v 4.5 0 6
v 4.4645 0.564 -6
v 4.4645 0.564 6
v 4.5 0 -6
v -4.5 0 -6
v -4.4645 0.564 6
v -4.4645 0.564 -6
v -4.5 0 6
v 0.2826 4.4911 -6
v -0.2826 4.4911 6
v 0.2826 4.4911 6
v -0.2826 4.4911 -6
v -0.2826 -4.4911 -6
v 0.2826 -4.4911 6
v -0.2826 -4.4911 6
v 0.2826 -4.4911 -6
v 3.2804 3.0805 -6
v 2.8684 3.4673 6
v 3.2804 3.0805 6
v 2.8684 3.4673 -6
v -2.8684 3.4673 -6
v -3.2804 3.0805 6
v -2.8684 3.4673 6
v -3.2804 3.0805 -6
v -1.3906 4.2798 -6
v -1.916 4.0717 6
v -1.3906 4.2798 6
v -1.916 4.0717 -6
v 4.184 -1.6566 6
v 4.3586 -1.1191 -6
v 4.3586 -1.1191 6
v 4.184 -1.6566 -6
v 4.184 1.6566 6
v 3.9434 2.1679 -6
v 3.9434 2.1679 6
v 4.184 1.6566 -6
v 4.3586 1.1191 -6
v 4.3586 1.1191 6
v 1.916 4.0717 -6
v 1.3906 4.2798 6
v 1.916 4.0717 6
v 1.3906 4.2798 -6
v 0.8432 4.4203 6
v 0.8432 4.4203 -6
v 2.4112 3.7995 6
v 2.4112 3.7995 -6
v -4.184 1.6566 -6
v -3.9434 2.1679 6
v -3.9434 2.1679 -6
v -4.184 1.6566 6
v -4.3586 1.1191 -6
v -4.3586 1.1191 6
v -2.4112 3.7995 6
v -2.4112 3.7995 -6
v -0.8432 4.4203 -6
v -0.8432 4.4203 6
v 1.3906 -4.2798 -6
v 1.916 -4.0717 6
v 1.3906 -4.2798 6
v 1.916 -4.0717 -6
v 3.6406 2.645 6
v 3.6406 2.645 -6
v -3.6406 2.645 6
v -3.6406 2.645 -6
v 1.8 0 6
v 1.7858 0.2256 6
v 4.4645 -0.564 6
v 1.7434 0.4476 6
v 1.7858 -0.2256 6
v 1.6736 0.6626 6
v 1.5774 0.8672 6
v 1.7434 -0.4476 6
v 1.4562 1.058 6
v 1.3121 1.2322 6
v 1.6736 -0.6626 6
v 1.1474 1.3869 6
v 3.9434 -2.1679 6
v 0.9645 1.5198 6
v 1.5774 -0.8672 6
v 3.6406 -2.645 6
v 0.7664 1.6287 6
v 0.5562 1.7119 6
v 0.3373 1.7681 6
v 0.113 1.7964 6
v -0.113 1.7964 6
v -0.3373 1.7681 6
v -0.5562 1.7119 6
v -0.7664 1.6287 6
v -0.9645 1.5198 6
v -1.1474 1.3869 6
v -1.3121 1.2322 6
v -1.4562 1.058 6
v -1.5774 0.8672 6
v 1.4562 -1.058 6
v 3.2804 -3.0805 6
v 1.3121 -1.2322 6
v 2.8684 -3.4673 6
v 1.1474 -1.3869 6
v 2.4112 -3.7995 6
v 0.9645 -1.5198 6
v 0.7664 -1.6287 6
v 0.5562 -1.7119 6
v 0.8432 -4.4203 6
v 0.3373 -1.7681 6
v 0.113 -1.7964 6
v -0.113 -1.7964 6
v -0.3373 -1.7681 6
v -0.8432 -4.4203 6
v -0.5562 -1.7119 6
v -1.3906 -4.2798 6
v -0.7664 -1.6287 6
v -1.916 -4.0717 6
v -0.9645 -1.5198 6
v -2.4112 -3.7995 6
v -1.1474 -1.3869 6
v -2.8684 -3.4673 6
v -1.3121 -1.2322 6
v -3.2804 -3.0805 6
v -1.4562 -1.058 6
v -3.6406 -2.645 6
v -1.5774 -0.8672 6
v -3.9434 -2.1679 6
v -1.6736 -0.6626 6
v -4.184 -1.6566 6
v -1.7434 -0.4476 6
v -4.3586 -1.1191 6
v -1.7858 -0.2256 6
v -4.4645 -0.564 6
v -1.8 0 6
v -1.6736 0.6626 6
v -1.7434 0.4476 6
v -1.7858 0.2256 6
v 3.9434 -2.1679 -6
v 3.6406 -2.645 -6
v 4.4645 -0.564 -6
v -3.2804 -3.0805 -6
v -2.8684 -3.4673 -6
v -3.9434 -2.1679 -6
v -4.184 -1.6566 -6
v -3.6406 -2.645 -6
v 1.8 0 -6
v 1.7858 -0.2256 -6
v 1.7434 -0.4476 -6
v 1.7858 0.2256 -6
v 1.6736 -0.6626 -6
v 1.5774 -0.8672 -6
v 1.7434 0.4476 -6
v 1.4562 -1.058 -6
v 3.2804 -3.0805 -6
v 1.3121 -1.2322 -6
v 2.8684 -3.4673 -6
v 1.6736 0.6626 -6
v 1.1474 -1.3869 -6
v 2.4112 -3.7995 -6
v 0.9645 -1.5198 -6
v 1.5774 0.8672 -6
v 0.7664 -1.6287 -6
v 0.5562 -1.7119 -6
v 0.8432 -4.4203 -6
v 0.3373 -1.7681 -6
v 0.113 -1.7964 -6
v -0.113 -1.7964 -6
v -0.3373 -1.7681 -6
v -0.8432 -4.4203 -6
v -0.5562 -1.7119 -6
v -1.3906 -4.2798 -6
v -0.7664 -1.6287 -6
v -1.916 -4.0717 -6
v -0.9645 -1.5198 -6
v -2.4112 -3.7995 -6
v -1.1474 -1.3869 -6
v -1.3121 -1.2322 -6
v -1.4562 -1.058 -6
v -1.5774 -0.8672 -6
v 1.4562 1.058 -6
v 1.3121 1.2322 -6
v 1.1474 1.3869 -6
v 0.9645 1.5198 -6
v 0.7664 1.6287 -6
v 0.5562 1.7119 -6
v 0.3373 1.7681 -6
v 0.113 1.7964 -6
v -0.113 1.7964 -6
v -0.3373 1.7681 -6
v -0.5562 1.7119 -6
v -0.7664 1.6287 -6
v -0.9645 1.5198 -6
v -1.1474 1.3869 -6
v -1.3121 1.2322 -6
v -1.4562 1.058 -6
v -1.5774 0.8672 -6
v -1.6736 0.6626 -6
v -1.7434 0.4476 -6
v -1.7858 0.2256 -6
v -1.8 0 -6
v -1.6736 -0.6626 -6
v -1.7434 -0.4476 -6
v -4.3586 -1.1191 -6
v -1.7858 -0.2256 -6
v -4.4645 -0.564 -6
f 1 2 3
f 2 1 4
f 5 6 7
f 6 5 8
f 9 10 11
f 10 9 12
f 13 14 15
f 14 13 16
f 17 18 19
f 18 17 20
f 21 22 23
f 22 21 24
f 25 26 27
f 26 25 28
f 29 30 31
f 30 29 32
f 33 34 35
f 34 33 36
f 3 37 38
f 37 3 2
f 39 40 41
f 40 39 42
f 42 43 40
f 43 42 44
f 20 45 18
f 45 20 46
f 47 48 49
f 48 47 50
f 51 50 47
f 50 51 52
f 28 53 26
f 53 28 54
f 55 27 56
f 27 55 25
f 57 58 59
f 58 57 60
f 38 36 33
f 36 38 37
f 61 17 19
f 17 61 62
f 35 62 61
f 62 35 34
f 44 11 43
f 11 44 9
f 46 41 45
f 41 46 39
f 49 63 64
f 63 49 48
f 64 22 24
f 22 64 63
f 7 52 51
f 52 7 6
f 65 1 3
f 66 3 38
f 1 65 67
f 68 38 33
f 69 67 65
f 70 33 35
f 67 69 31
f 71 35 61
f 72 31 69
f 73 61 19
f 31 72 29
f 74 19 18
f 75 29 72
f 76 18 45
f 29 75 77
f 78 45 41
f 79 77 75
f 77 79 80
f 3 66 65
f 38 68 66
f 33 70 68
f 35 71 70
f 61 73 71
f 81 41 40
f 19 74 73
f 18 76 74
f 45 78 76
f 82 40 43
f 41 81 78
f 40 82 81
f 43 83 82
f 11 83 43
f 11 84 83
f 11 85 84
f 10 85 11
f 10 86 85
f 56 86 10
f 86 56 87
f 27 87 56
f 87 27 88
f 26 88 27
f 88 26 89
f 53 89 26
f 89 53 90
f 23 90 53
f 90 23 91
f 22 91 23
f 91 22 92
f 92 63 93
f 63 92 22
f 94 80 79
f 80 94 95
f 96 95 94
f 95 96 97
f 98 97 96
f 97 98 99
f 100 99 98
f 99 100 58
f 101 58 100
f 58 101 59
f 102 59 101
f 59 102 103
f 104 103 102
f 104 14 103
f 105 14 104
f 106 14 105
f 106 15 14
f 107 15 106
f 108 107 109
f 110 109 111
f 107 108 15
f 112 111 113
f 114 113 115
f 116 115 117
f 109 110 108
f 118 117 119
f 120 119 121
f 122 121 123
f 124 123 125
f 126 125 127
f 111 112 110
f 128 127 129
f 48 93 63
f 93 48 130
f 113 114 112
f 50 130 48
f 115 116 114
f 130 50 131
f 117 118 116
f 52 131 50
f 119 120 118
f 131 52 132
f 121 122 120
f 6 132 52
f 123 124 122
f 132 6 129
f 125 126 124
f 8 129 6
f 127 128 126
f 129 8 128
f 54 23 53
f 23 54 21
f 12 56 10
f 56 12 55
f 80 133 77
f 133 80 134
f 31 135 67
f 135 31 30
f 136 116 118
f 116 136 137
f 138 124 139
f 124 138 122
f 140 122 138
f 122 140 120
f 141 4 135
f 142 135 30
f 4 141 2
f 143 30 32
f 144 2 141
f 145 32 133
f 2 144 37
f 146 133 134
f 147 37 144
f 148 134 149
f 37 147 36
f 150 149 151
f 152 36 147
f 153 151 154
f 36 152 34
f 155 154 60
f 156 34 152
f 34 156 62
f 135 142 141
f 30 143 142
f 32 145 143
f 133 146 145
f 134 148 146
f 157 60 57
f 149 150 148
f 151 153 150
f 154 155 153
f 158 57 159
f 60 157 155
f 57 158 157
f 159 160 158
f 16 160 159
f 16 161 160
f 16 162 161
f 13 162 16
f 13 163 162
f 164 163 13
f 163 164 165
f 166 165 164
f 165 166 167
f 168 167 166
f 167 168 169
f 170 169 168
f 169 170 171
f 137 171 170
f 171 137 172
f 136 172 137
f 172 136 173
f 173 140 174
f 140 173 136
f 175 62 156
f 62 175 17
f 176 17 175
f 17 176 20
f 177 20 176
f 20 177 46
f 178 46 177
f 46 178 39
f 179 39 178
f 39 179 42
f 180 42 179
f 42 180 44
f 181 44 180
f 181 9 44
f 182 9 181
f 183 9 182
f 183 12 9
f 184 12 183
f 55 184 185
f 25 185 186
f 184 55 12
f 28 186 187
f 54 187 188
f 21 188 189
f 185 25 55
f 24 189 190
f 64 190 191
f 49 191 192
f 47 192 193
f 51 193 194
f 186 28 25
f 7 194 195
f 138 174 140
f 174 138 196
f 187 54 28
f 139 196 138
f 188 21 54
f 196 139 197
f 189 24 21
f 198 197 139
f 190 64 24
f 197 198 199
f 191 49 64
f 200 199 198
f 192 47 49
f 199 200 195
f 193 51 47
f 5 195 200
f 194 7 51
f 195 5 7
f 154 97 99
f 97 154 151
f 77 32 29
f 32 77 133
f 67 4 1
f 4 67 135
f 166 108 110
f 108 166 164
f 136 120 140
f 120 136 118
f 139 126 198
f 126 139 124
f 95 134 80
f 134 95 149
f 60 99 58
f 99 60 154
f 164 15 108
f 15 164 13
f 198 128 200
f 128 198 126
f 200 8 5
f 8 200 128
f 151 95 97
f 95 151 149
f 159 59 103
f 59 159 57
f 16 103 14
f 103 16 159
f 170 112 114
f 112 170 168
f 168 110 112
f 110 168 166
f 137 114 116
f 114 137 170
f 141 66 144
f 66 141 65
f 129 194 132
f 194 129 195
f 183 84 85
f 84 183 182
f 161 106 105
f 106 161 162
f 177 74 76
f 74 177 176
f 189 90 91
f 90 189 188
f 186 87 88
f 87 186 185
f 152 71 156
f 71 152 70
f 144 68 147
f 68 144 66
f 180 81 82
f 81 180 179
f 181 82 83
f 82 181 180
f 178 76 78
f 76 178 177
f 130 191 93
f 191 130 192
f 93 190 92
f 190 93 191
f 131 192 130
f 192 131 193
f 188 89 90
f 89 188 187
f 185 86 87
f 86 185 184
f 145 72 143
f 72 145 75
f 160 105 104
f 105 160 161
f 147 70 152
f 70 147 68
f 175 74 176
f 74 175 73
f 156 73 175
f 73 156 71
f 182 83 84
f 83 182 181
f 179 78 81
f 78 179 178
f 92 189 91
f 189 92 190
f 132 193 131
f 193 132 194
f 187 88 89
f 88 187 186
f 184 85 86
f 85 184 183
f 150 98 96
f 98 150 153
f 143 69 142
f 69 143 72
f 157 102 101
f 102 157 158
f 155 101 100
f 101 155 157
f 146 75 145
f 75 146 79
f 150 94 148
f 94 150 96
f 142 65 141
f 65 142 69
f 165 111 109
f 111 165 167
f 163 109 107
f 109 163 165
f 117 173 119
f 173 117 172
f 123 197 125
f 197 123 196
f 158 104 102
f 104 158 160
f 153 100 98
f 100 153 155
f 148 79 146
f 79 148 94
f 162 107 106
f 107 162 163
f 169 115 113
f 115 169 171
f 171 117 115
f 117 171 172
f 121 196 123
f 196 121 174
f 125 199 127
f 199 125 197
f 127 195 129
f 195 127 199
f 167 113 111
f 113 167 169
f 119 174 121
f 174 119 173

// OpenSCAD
$fn = 50;


difference() {
	union() {
		translate(v = [0, 0, -6.0000000000]) {
			cylinder(h = 12, r = 4.5000000000);
		}
	}
	union() {
		translate(v = [0, 0, -100.0000000000]) {
			cylinder(h = 200, r = 1.8000000000);
		}
	}
}
